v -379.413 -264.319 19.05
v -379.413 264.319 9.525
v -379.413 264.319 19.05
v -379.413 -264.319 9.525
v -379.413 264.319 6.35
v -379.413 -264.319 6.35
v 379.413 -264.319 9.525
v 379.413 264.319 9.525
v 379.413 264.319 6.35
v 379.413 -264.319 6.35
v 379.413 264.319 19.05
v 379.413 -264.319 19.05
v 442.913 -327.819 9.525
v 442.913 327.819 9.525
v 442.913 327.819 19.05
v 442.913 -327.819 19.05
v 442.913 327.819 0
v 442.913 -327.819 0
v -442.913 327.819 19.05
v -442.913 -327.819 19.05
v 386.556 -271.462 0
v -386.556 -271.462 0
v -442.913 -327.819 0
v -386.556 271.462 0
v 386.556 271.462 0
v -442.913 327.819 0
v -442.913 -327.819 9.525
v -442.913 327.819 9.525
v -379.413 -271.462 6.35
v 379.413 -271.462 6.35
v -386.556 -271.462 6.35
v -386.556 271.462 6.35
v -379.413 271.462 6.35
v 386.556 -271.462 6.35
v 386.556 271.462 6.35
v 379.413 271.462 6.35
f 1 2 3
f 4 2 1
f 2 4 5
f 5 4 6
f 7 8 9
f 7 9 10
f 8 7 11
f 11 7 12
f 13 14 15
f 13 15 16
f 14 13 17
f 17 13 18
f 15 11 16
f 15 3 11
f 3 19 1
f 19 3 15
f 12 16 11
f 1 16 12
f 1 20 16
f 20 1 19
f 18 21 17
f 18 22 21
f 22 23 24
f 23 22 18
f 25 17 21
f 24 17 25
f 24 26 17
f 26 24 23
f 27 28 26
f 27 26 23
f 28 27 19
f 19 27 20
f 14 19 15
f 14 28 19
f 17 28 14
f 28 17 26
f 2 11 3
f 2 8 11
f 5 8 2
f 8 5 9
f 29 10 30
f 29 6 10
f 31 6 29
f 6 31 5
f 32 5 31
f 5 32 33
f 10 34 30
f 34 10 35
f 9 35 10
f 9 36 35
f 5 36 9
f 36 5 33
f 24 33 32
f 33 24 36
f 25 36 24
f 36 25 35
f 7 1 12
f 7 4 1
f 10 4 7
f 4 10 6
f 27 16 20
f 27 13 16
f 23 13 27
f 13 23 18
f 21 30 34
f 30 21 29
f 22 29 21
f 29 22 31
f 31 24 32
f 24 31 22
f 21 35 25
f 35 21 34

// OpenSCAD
// Art frame — extended from the supplied half-lap FeatureScript 3083.
// The unchanged original is alongside this file as half-lap-art-frame.fs.
// Inputs are inches; geometry and STL exports are millimetres.
// XY is the frame face. Back is Z=0; front is Z=Thickness.

/* [Artwork] */
// Actual artwork width before the frame overlaps its edges.
Art_width = 30.375; // [1:200]
// Actual artwork height before the frame overlaps its edges.
Art_height = 21.3125; // [1:200]
// Overlap at EACH edge, not a gap. Opening = art size minus twice this value.
Reveal = 0.25; // [0.01:4]

/* [Frame and joinery] */
// Corner construction. All options preserve the opening and outside dimensions.
Joinery = "half_lap"; // [half_lap:Half-lap, miter:Plain miter, mitered_half_lap:Mitered half-lap, bridle:Corner bridle, mitered_bridle:Mitered bridle, splined_miter:Miter with exposed splines, loose_tenon_miter:Miter with loose tenons, dowelled_butt:Dowelled square corner, dovetail_key_miter:Miter with dovetail keys, blind_mortise_tenon:Blind mortise and tenon, through_mortise_tenon:Through mortise and tenon]
// Face width of all four rails and stiles; also the length of each half-lap.
Member_width = 2.5; // [0.25:12]
// Finished stock thickness. Automatic lap and tongue sizes follow this value.
Thickness = 0.75; // [0.125:4]
// Cut from the BACK face. Set to zero to omit the rabbet.
Rabbet_depth = 0.25; // [0:3]
// Additional fitting clearance at each artwork edge; enlarges only the back pocket.
Clearance = 0.03125; // [0:0.25]
// Depth of the rail's back lap, inches. Zero uses half the stock thickness.
Lap_depth = 0; // [0:4]
// Tongue or loose-tenon thickness, inches. Zero uses one third of the stock thickness.
Tenon_thickness = 0; // [0:4]
// Shift the tongue or loose tenon toward the front (+) or back (-), measured from centered.
Tenon_offset = 0; // [-2:2]

/* [Corner inserts] */
// Thickness of each exposed spline. Zero uses one sixth of stock thickness.
Spline_thickness = 0; // [0:2]
// Slot depth along the 45-degree miter, measured from the outside corner. Zero uses one third of member width.
Spline_depth = 0; // [0:8]
// Equally spaced spline slots through the stock thickness.
Spline_count = 1; // [1:1:3]
// Embedment into EACH miter face, normal to that face. Zero uses one quarter of member width.
Loose_tenon_depth = 0; // [0:8]
// Loose-tenon width along the miter face. Zero uses one third of member width.
Loose_tenon_width = 0; // [0:8]
// Dovetail-key slot depth along the miter from the outside corner. Zero chooses a depth that leaves a substantial tip.
Key_depth = 0; // [0:8]
// Widest key thickness, at the buried end. Zero uses half the stock thickness.
Key_thickness = 0; // [0:2]
// Dovetail cutter flank angle in DEGREES, on each side of the key.
Key_angle = 8; // [1:20]
// Dowel diameter. Zero chooses a diameter that fits the stock thickness and full-thickness face band.
Dowel_diameter = 0; // [0:2]
// Embedment into EACH member. Zero uses half the stile width, limited by the rail length.
Dowel_depth = 0; // [0:8]
// Number of dowels at each square corner.
Dowel_count = 2; // [1:1:3]
// Center-to-center spacing across the member width. Zero spaces the dowels in the band outside the rabbet.
Dowel_spacing = 0; // [0:8]

/* [Mortise and tenon] */
// Integral tenon width across the rail face. Zero uses half the member width.
Tenon_width = 0; // [0:8]
// Inset of the tenon's inner edge from the opening. Zero centers it in the band outside the rabbet.
Tenon_inset = 0; // [0:8]
// Blind tenon and mortise length. Zero uses half the stile width; through tenons always finish flush outside.
Mortise_depth = 0; // [0:8]

/* [Inspection] */
// Separation in percent: 0 assembles the frame, 100 matches the original exploded view, and 200 doubles it. Complete frame only; part sizes stay fixed.
Explosion_percent = 0; // [0:5:200]
// Select a member or one representative insert for inspection and a separate STL export.
Part = "all"; // [all:Complete frame, top:Top rail, bottom:Bottom rail, left:Left stile, right:Right stile, insert:One corner insert]

/* [Hidden] */
inch = 25.4;
eps = 0.01 / inch; // Same 0.01 mm boolean-tool overrun as the original.
opening_width = Art_width - 2 * Reveal;
opening_height = Art_height - 2 * Reveal;
rail_length = opening_width + 2 * Member_width;
stile_length = opening_height + 2 * Member_width;
lap_depth = Lap_depth == 0 ? Thickness / 2 : Lap_depth;
tenon_thickness = Tenon_thickness == 0 ? Thickness / 3 : Tenon_thickness;
tenon_back = (Thickness - tenon_thickness) / 2 + Tenon_offset;
tenon_front = tenon_back + tenon_thickness;
is_reinforced_miter = Joinery == "splined_miter" || Joinery == "loose_tenon_miter" || Joinery == "dovetail_key_miter";
is_mt = Joinery == "blind_mortise_tenon" || Joinery == "through_mortise_tenon";
is_square = is_mt || Joinery == "dowelled_butt";
has_inserts = is_reinforced_miter || Joinery == "dowelled_butt";
has_machining_sheet = is_reinforced_miter || is_square;
is_bridle = Joinery == "bridle" || Joinery == "mitered_bridle";
is_lap = Joinery == "half_lap" || Joinery == "mitered_half_lap";
has_miter = is_reinforced_miter || Joinery == "miter" || Joinery == "mitered_half_lap" || Joinery == "mitered_bridle";
joint_title = Joinery == "half_lap" ? "Half-lap" : Joinery == "miter" ? "Plain miter" :
    Joinery == "mitered_half_lap" ? "Mitered half-lap" : Joinery == "bridle" ? "Corner bridle" :
    Joinery == "mitered_bridle" ? "Mitered bridle" : Joinery == "splined_miter" ? "Exposed-spline miter" :
    Joinery == "loose_tenon_miter" ? "Loose-tenon miter" : Joinery == "dowelled_butt" ? "Dowelled square corner" :
    Joinery == "dovetail_key_miter" ? "Dovetail-key miter" : Joinery == "blind_mortise_tenon" ? "Blind mortise and tenon" : "Through mortise and tenon";
rabbet_width = Reveal + Clearance;
solid_band_start = Rabbet_depth > 0 ? rabbet_width : 0;
tenon_width = Tenon_width == 0 ? Member_width/2 : Tenon_width;
tenon_inset = Tenon_inset == 0 ? (solid_band_start+Member_width-tenon_width)/2 : Tenon_inset;
mt_depth = Joinery == "through_mortise_tenon" ? Member_width : Mortise_depth == 0 ? Member_width/2 : Mortise_depth;
rail_blank = is_square ? opening_width + (is_mt ? 2*mt_depth : 0) : rail_length;
spline_thickness = Spline_thickness == 0 ? Thickness/6 : Spline_thickness;
spline_depth = Spline_depth == 0 ? Member_width/3 : Spline_depth;
loose_depth = Loose_tenon_depth == 0 ? Member_width/4 : Loose_tenon_depth;
loose_width = Loose_tenon_width == 0 ? Member_width/3 : Loose_tenon_width;
loose_center = Member_width/sqrt(2);
key_thickness = Key_thickness == 0 ? Thickness/2 : Key_thickness;
key_depth = Key_depth == 0 ? min(Member_width/3,key_thickness/(3*tan(Key_angle))) : Key_depth;
key_tip = key_thickness - 2*key_depth*tan(Key_angle);
dowel_diameter = Dowel_diameter == 0 ? min(Thickness/3,(Member_width-solid_band_start)/(2*Dowel_count)) : Dowel_diameter;
dowel_depth = Dowel_depth == 0 ? min(Member_width/2,opening_width/4) : Dowel_depth;
dowel_spacing = Dowel_spacing == 0 ? (Member_width-solid_band_start)/(Dowel_count+1) : Dowel_spacing;
function dowel_v(j) = (solid_band_start+Member_width)/2 + (j-(Dowel_count-1)/2)*dowel_spacing;
insert_count = Joinery == "splined_miter" ? Spline_count : Joinery == "dowelled_butt" ? Dowel_count : 1;
insert_name = Joinery == "splined_miter" ? "Spline" : Joinery == "loose_tenon_miter" ? "Loose tenon" : Joinery == "dovetail_key_miter" ? "Dovetail key" : "Dowel blank (turn round)";
insert_thickness = Joinery == "splined_miter" ? spline_thickness : Joinery == "loose_tenon_miter" ? tenon_thickness : Joinery == "dovetail_key_miter" ? key_thickness : dowel_diameter;
insert_length = Joinery == "splined_miter" ? 2*spline_depth : Joinery == "loose_tenon_miter" ? 2*loose_depth : Joinery == "dovetail_key_miter" ? 2*key_depth : 2*dowel_depth;
insert_width = Joinery == "splined_miter" ? spline_depth : Joinery == "loose_tenon_miter" ? loose_width : Joinery == "dovetail_key_miter" ? key_depth : dowel_diameter;
// Stable individual identities allow the drawing pass to select one insert.
insert_colors = ["#8754ad", "#ae689d", "#7065af", "#508549", "#75853c", "#47856d",
                 "#a67538", "#a75a55", "#956d70", "#476c9c", "#5d7c92", "#687aaf"];
part_ids = ["top", "bottom", "left", "right"];
// Separate physical identities; paired hues distinguish rails from stiles.
part_colors = ["#b87924", "#b6483b", "#2c78b5", "#3998a5"];
offsets = [[0, 2 * Member_width, Thickness], [0, -2 * Member_width, Thickness],
           [-2 * Member_width, 0, 0], [2 * Member_width, 0, 0]];

assert(Art_width >= 1 && Art_width <= 200 && Art_height >= 1 && Art_height <= 200,
       "Artwork dimensions must be between 1 and 200 inches.");
assert(Reveal >= 0.01 && Reveal <= 4, "Overlap must be between 0.01 and 4 inches.");
assert(Member_width >= 0.25 && Member_width <= 12, "Member width must be between 0.25 and 12 inches.");
assert(Thickness >= 0.125 && Thickness <= 4, "Stock thickness must be between 0.125 and 4 inches.");
assert(Rabbet_depth >= 0 && Rabbet_depth <= 3, "Rabbet depth must be between 0 and 3 inches.");
assert(Clearance >= 0 && Clearance <= 0.25, "Clearance must be between 0 and 0.25 inches.");
assert(opening_width > 0 && opening_height > 0, "Overlap leaves no opening.");
assert(rabbet_width < Member_width, "Overlap plus clearance must be less than member width.");
assert(Rabbet_depth < Thickness, "Rabbet depth must be less than stock thickness.");
assert(Joinery == "half_lap" || Joinery == "miter" || Joinery == "mitered_half_lap" ||
       Joinery == "bridle" || Joinery == "mitered_bridle" || has_machining_sheet, "Choose a supported corner joint.");
assert(!is_lap || (Lap_depth >= 0 && lap_depth > eps && lap_depth < Thickness - eps),
       "Lap depth must leave material in both frame members; use 0 for half thickness.");
assert(!(is_bridle || is_mt || Joinery == "loose_tenon_miter") || (Tenon_thickness >= 0 && tenon_thickness > eps && tenon_back > eps && tenon_front < Thickness - eps),
       "The tongue must leave a positive cheek on both faces. Reduce its thickness or offset.");
assert(Joinery != "splined_miter" || (Spline_count >= 1 && Spline_count <= 3 && floor(Spline_count) == Spline_count &&
       Spline_depth >= 0 && Spline_thickness >= 0 && spline_thickness > eps && spline_thickness < Thickness/(Spline_count+1) &&
       spline_depth > eps && sqrt(2)*spline_depth < Member_width-solid_band_start),
       "Splines must leave wood between slots and stay in the band outside the rabbet. Reduce thickness, count or depth.");
assert(Joinery != "loose_tenon_miter" || (Loose_tenon_depth >= 0 && Loose_tenon_width >= 0 && loose_depth > eps && loose_width > eps &&
       loose_center-loose_width/2 > loose_depth+eps && loose_center+loose_width/2+loose_depth < sqrt(2)*Member_width-eps &&
       (tenon_back >= Rabbet_depth || loose_center+loose_width/2 < sqrt(2)*(Member_width-rabbet_width)-eps)),
       "Loose mortises must remain concealed and clear the rear pocket. Reduce width or depth, or move the tongue forward.");
assert(Joinery != "dovetail_key_miter" || (Key_depth >= 0 && Key_thickness >= 0 && Key_angle >= 1 && Key_angle <= 20 &&
       key_depth > eps && key_thickness < Thickness-eps && key_tip > eps && sqrt(2)*key_depth < Member_width-solid_band_start),
       "Dovetail keys must retain a positive tip, cheeks and wood outside the rabbet. Reduce depth or angle, or increase key thickness.");
assert(Joinery != "dowelled_butt" || (Dowel_count >= 1 && Dowel_count <= 3 && floor(Dowel_count) == Dowel_count &&
       Dowel_diameter >= 0 && Dowel_depth >= 0 && Dowel_spacing >= 0 && dowel_diameter > eps && dowel_diameter < Thickness-eps &&
       dowel_depth > eps && dowel_depth < Member_width-eps && 2*dowel_depth < opening_width-eps &&
       (Dowel_count == 1 || dowel_spacing > dowel_diameter+eps) &&
       dowel_v(0)-dowel_diameter/2 > solid_band_start+eps && dowel_v(Dowel_count-1)+dowel_diameter/2 < Member_width-eps),
       "Dowel holes must be separate, blind and inside the full-thickness band. Reduce diameter, depth or spacing.");
assert(!is_mt || (Tenon_width >= 0 && Tenon_inset >= 0 && (Joinery == "through_mortise_tenon" || Mortise_depth >= 0) && tenon_width > eps &&
       tenon_inset > solid_band_start+eps && tenon_inset+tenon_width < Member_width-eps && mt_depth > eps &&
       (Joinery == "through_mortise_tenon" || mt_depth < Member_width-eps)),
       "Mortise and tenon must leave face shoulders outside the rabbet and a positive blind end wall. Reduce width, inset or depth.");
assert(Part != "insert" || has_inserts, "This joint has no separate inserts. Select the complete frame or a member.");
assert(is_num(Explosion_percent) && Explosion_percent >= 0 && Explosion_percent <= 200,
       "Explosion percent must be between 0 and 200.");
assert(Part == "all" || Part == "top" || Part == "bottom" || Part == "left" || Part == "right" || Part == "insert",
       "Choose all members or one of the four named parts.");

// Derived, read-only dimensions, corresponding to the FeatureScript variables
// and computed blank lengths. They always describe the complete frame.
echo(str("All dimensions below are inches; exported geometry is millimetres."));
echo(str("Visible opening: ", opening_width, " x ", opening_height));
echo(str("Outside frame: ", rail_length, " x ", stile_length));
echo(str("Rear pocket: ", Art_width + 2 * Clearance, " x ", Art_height + 2 * Clearance,
         Rabbet_depth == 0 ? " (rabbet omitted)" : ""));
echo(str("Rail blanks (2): ", rail_blank, " long x ", Member_width, " wide x ", Thickness, " thick"));
echo(str("Stile blanks (2): ", stile_length, " long x ", Member_width, " wide x ", Thickness, " thick"));
echo(str("Joinery: ", joint_title));
if (is_lap) echo(str("Rail back lap: ", Member_width, " long x ", lap_depth, " deep"));
if (is_bridle) echo(str("Bridle tongue: ", tenon_thickness, " thick; back/front cheeks ",
                       tenon_back, " / ", Thickness - tenon_front));
echo(str("Rear rabbet: ", rabbet_width, " wide x ", Rabbet_depth, " deep"));

module box(lo, hi) {
    // Convert before boolean operations: the browser engine's tolerances are
    // suited to millimetres, including the smallest allowed artwork/overlap.
    translate(lo * inch) cube((hi - lo) * inch);
}

module half_lap_member(i) {
    is_rail = i < 2;
    lo = is_rail
        ? [-rail_length / 2, i == 0 ? opening_height / 2 : -stile_length / 2, 0]
        : [i == 2 ? -rail_length / 2 : opening_width / 2, -stile_length / 2, 0];
    hi = is_rail
        ? [rail_length / 2, lo[1] + Member_width, Thickness]
        : [lo[0] + Member_width, stile_length / 2, Thickness];
    difference() {
        box(lo, hi);
        if (is_rail) {
            // Rails keep the FRONT half at both ends.
            box([-rail_length / 2 - eps, lo[1] - eps, -eps],
                [-opening_width / 2, hi[1] + eps, lap_depth]);
            box([opening_width / 2, lo[1] - eps, -eps],
                [rail_length / 2 + eps, hi[1] + eps, lap_depth]);
        } else {
            // Stiles keep the BACK half at both ends.
            box([lo[0] - eps, -stile_length / 2 - eps, lap_depth],
                [hi[0] + eps, -opening_height / 2, Thickness + eps]);
            box([lo[0] - eps, opening_height / 2, lap_depth],
                [hi[0] + eps, stile_length / 2 + eps, Thickness + eps]);
        }
        if (Rabbet_depth > 0)
            box([-Art_width / 2 - Clearance, -Art_height / 2 - Clearance, -eps],
                [Art_width / 2 + Clearance, Art_height / 2 + Clearance, Rabbet_depth]);
    }
}

// Layer styles: full-width ends, square shoulders, or 45-degree miters.
// Corner regions are complementary, so the assembled frame has no gaps or
// overlapping wood. The mitered variants have a mitered FRONT face only.
function joint_layers(rail) =
    (Joinery == "miter" || is_reinforced_miter) ? [[0, Thickness, "miter"]] :
    Joinery == "mitered_half_lap" ? [[0, lap_depth, rail ? "short" : "full"], [lap_depth, Thickness, "miter"]] :
    [[0, tenon_back, rail ? "short" : "full"],
     [tenon_back, tenon_front, rail ? "full" : "short"],
     [tenon_front, Thickness, Joinery == "mitered_bridle" ? "miter" : rail ? "short" : "full"]];
function xy(i, u, v) = i < 2 ? [u, (i == 0 ? 1 : -1) * (opening_height / 2 + v)]
                             : [(i == 2 ? -1 : 1) * (opening_width / 2 + v), u];
module shaped_member(i) {
    rail = i < 2;
    length = rail ? rail_length : stile_length;
    difference() {
        // Subtract all machining from one blank so preview meshes also have
        // a single exterior skin, without coincident internal layer faces.
        linear_extrude(height=Thickness*inch)
            polygon([for (p = [[-length/2,0],[length/2,0],[length/2,Member_width],[-length/2,Member_width]])
                     xy(i,p[0],p[1])*inch]);
        for (layer = joint_layers(rail)) if (layer[2] != "full") for (sign = [-1,1]) {
            points = layer[2] == "short"
                ? [[-length/2-eps,-eps],[-length/2+Member_width,-eps],
                   [-length/2+Member_width,Member_width+eps],[-length/2-eps,Member_width+eps]]
                : [[-length/2-eps,-eps],[-length/2+Member_width+eps,-eps],[-length/2-eps,Member_width+eps]];
            z0 = layer[0] == 0 ? -eps : layer[0];
            z1 = layer[1] == Thickness ? Thickness+eps : layer[1];
            translate([0,0,z0*inch]) linear_extrude(height=(z1-z0)*inch)
                polygon([for (p = points) xy(i,sign*p[0],p[1])*inch]);
        }
        if (Rabbet_depth > 0)
            box([-Art_width/2-Clearance,-Art_height/2-Clearance,-eps],
                [Art_width/2+Clearance,Art_height/2+Clearance,Rabbet_depth]);
    }
}
// Corner coordinates: a and b run inward from the two outside edges.
// s crosses the miter; t follows the miter from its outside point inward.
function corner_sign(k) = [[-1,1],[1,1],[-1,-1],[1,-1]][k];
function corner_point(k,s,t,z) = let(sign=corner_sign(k), a=(t+s)/sqrt(2), b=(t-s)/sqrt(2))
    [sign[0]*(rail_length/2-a),sign[1]*(stile_length/2-b),z];
module corner_transform(k) {
    sign=corner_sign(k); c=1/sqrt(2);
    multmatrix([[-sign[0]*c,-sign[0]*c,0,sign[0]*rail_length/2*inch],
                [sign[1]*c,-sign[1]*c,0,sign[1]*stile_length/2*inch],
                [0,0,1,0],[0,0,0,1]]) children();
}
module miter_insert(k,j) corner_transform(k) {
    if (Joinery == "loose_tenon_miter")
        box([-loose_depth,loose_center-loose_width/2,tenon_back],
            [loose_depth,loose_center+loose_width/2,tenon_front]);
    else if (Joinery == "splined_miter") {
        z=Thickness*(j+1)/(Spline_count+1)-spline_thickness/2;
        translate([0,0,z*inch]) linear_extrude(height=spline_thickness*inch)
            polygon([[0,0],[-spline_depth,spline_depth],[spline_depth,spline_depth]]*inch);
    } else {
        // The buried edge is thicker than the outside tip: a real dovetail
        // cross-section, routed across the corner and trimmed flush outside.
        points=[for (side=[-1,1]) each [[0,0,Thickness/2+side*key_tip/2],
            [-key_depth,key_depth,Thickness/2+side*key_thickness/2],
            [key_depth,key_depth,Thickness/2+side*key_thickness/2]]];
        polyhedron(points=points*inch,faces=[[2,1,0],[4,5,3],[1,4,3,0],[2,5,4,1],[0,3,5,2]],convexity=4);
    }
}
module dowel(k,j) {
    sign=corner_sign(k);
    translate([sign[0]*opening_width/2,sign[1]*(opening_height/2+dowel_v(j)),Thickness/2]*inch)
        rotate([0,90,0]) cylinder(h=2*dowel_depth*inch,d=dowel_diameter*inch,center=true,$fn=32);
}
module mt_tool(k,overrun=false) {
    sign=corner_sign(k);
    x0=sign[0]*opening_width/2; x1=sign[0]*(opening_width/2+mt_depth);
    y0=sign[1]*(opening_height/2+tenon_inset); y1=sign[1]*(opening_height/2+tenon_inset+tenon_width);
    box([min(x0,x1)-(overrun && sign[0]>0 ? eps : 0),min(y0,y1),tenon_back],
        [max(x0,x1)+(overrun && sign[0]<0 ? eps : 0),max(y0,y1),tenon_front]);
}
module square_member(i) {
    rail=i<2; length=rail ? rail_blank : stile_length;
    difference() {
        linear_extrude(height=Thickness*inch)
            polygon([for(p=[[-length/2,0],[length/2,0],[length/2,Member_width],[-length/2,Member_width]]) xy(i,p[0],p[1])*inch]);
        if (is_mt && rail) for (sign=[-1,1]) {
            // Cut shoulders from one blank, retaining an integral rail tenon.
            for (cut=[[0,tenon_inset,-eps,Thickness+eps],
                      [tenon_inset+tenon_width,Member_width,-eps,Thickness+eps],
                      [0,Member_width,-eps,tenon_back],[0,Member_width,tenon_front,Thickness+eps]]) {
                translate([0,0,cut[2]*inch]) linear_extrude(height=(cut[3]-cut[2])*inch)
                    polygon([for(p=[[-length/2-eps,cut[0] == 0 ? -eps : cut[0]],[-opening_width/2,cut[0] == 0 ? -eps : cut[0]],
                                    [-opening_width/2,cut[1] == Member_width ? Member_width+eps : cut[1]],[-length/2-eps,cut[1] == Member_width ? Member_width+eps : cut[1]]])
                        xy(i,sign*p[0],p[1])*inch]);
            }
        }
        if (is_mt && !rail) for(k=[0:3]) mt_tool(k,true);
        if (Joinery == "dowelled_butt") for(k=[0:3]) for(j=[0:Dowel_count-1]) dowel(k,j);
        if (Rabbet_depth > 0) box([-Art_width/2-Clearance,-Art_height/2-Clearance,-eps],
                                 [Art_width/2+Clearance,Art_height/2+Clearance,Rabbet_depth]);
    }
}
module member(i) {
    if (Joinery == "half_lap") half_lap_member(i);
    else if (is_square) square_member(i);
    else difference() {
        shaped_member(i);
        if (is_reinforced_miter) for(k=[0:3]) for(j=[0:insert_count-1]) miter_insert(k,j);
    }
}
module frame(assembled = false) union() {
    separation = !assembled && Part == "all" ? Explosion_percent/100 : 0;
    for (i=[0:3]) if (assembled || Part == "all" || Part == part_ids[i])
        color(part_colors[i])
            translate(offsets[i]*separation*inch) member(i);
    if (has_inserts) for(k=[0:3]) for(j=[0:insert_count-1])
        if (assembled || Part == "all" || (Part == "insert" && k == 0 && j == 0))
            color(insert_colors[k*3+j])
                translate([corner_sign(k)[0]*Member_width/2,corner_sign(k)[1]*Member_width/2,2*Thickness]*separation*inch)
                    if (Joinery == "dowelled_butt") dowel(k,j); else miter_insert(k,j);
}

// Finished rectangular blanks BEFORE machining. Insert grain runs along the
// listed length (across the miter); dowel blanks are turned to the given diameter.
echo("CUTLIST_STOCK_V1", [14,10,0.0625,0.0625]);
echo("CUTLIST_V1", concat([for(i=[0:3])
    [part_ids[i],["Top rail","Bottom rail","Left stile","Right stile"][i],"Solid wood",1,
     Thickness,Member_width,i<2 ? rail_blank : stile_length,
     rail_blank == stile_length ? "Frame member" : i<2 ? "Rail" : "Stile"]],
    !has_inserts ? [] : [for(k=[0:3]) for(j=[0:insert_count-1])
        [str("insert-",k,"-",j),insert_name,"Solid wood",1,insert_thickness,insert_width,insert_length,insert_name]]));

// Witness coordinates encode whole mm + millionths to retain inch fractions
// through OpenSCAD echo's six-significant-digit formatting.
function dp(p) = [for (n = p * inch) [floor(n), round((n - floor(n)) * 1000000)]];
function dim(label, a, b, direction, side, tier = 1) = [label, dp(a), dp(b), direction, side, tier];
function guide(a, b) = [dp(a), dp(b)];
function section(depth, crop, breaks = [], notes = [], contacts = []) =
    [dp([depth,0,0])[0], [for(n=crop) dp([n,0,0])[0]], breaks, notes, contacts];
// Local member coordinates: u along its length, v from its inner edge outward.
function pp(rail, u, v, z) = rail ? [u, opening_height / 2 + v, z] : [-opening_width / 2 - v, u, z];
function pd(rail, label, a, b, direction, side, tier = 1) =
    dim(label, pp(rail, a[0], a[1], a[2]), pp(rail, b[0], b[1], b[2]), direction, side, tier);
function pg(rail, a, b) = guide(pp(rail, a[0], a[1], a[2]), pp(rail, b[0], b[1], b[2]));

function lap_part_sheet(rail) = let(
    length = rail ? rail_length : stile_length,
    pocket_run = (rail ? Art_width : Art_height) + 2 * Clearance,
    inner_offset = (rail ? opening_height : opening_width) / 2,
    extension = min(Member_width, (length - 2 * Member_width) / 2),
    section_v = (rabbet_width + Member_width) / 2,
    lap_floor = rail ? 0 : lap_depth,
    lap_roof = rail ? lap_depth : Thickness
) [rail ? "rail" : "stile", rail ? "Rails" : "Stiles", 2, [
    rail ? "Top and bottom rails match. Cut both laps from the BACK; retain the FRONT layer."
         : "Left and right stiles match. Cut both laps from the FRONT; retain the BACK layer.",
    "Both end laps run across the full member width. Grain runs along the blank length.",
    Rabbet_depth > 0 ? "Center the rear pocket cut along the length; dashed limits include removed lap material."
                     : "Rabbet omitted: no rear-pocket machining is required.",
    "All dimensions are finished sizes. Rough-stock allowances are in the cut list."
], rail ? [184/255,121/255,36/255] : [44/255,120/255,181/255], [
    ["face", rail ? "Back face / dashed: pocket cut limits" : "Front face / dashed: rear pocket cut limits",
     rail ? [[1,0,0],[0,-1,0],[0,0,-1]] : [[0,1,0],[-1,0,0],[0,0,1]], [
        pd(rail, "Blank length", [-length/2,Member_width,0], [length/2,Member_width,0], "horizontal", 1),
        pd(rail, "Blank width", [-length/2,0,0], [-length/2,Member_width,0], "vertical", -1),
        pd(rail, "Each lap", [-length/2,0,0], [-length/2+Member_width,0,0], "horizontal", -1),
        if (Rabbet_depth > 0)
            pd(rail, "Pocket end inset", [-length/2,0,0], [-pocket_run/2,0,0], "horizontal", -1, 2),
        if (Rabbet_depth > 0)
            pd(rail, "Pocket cut run", [-pocket_run/2,0,0], [pocket_run/2,0,0], "horizontal", 1, 2)
     ], [], Rabbet_depth > 0 ? [
        pg(rail, [-pocket_run/2,0,0], [-pocket_run/2,rabbet_width,0]),
        pg(rail, [-pocket_run/2,rabbet_width,0], [pocket_run/2,rabbet_width,0]),
        pg(rail, [pocket_run/2,rabbet_width,0], [pocket_run/2,0,0])
     ] : []],
    ["lap", "End lap / section outside the rabbet",
     rail ? [[1,0,0],[0,0,1],[0,-1,0]] : [[0,1,0],[0,0,1],[1,0,0]], [
        pd(rail, "Lap length", [-length/2,section_v,lap_floor], [-length/2+Member_width,section_v,lap_floor], "horizontal", -1),
        pd(rail, "Lap depth", [-length/2,section_v,lap_floor], [-length/2,section_v,lap_roof], "vertical", -1),
        pd(rail, "Thickness", [-length/2+Member_width+extension,section_v,0], [-length/2+Member_width+extension,section_v,Thickness], "vertical", 1)
     ], section(-(inner_offset+section_v), [-length/2,0,-length/2+Member_width+extension,Thickness], ["right"]), [
        pg(rail, [-length/2,section_v,rail ? 0 : Thickness], [-length/2+Member_width,section_v,rail ? 0 : Thickness])
     ]],
    ["profile", Rabbet_depth > 0 ? "Mid-length section / rear rabbet" : "Mid-length section / rabbet omitted",
     rail ? [[0,1,0],[0,0,1],[1,0,0]] : [[-1,0,0],[0,0,1],[0,1,0]], [
        pd(rail, "Width", [0,0,Thickness], [0,Member_width,Thickness], "horizontal", -1),
        pd(rail, "Stock", [0,Member_width,0], [0,Member_width,Thickness], "vertical", 1),
        if (Rabbet_depth > 0) pd(rail, "Rabbet width", [0,0,Rabbet_depth], [0,rabbet_width,Rabbet_depth], "horizontal", 1),
        if (Rabbet_depth > 0) pd(rail, "Rabbet depth", [0,0,0], [0,0,Rabbet_depth], "vertical", -1)
     ], section(0, [inner_offset,0,inner_offset+Member_width,Thickness])]
]];

// The default sheet stays compatible with the original half-lap design.
// Other joints use the same blank/rabbet witnesses, with different end machining.
function frame_part_sheet(rail) = let(
    base = lap_part_sheet(rail), length = rail ? rail_length : stile_length,
    inner = (rail ? opening_height : opening_width)/2,
    sv = (rabbet_width+Member_width)/2,
    extension = min(Member_width,(length-2*Member_width)/2),
    u0 = -length/2, u1 = u0+Member_width, end = u1+extension
) Joinery == "half_lap" ? base : [base[0],base[1],base[2],[
    str(joint_title, ": both ends match. Grain runs along the blank length."),
    Joinery == "miter" ? "Cut both ends at 45 degrees through the full thickness; blank length is long point to long point." :
    Joinery == "mitered_half_lap" ? "FRONT layer: 45-degree miters. BACK layer: square rail shoulders and full stile ends." :
    Joinery == "bridle" ? "Rail tongues enter open-ended stile slots. Tongues and slots run the full member width." :
    "FRONT cheeks: 45-degree miters. Rail tongues enter stile slots; BACK cheeks have square shoulders.",
    Rabbet_depth > 0 ? "Center the rear pocket cut along the length; dashed limits include removed end material."
                    : "Rabbet omitted: no rear-pocket machining is required.",
    "Zero clearance at mating faces is nominal. Fit the joint on test stock. Dimensions are finished sizes."
],base[4],[
    ["face", has_miter ? "Front face / 45-degree miters / dashed: machining references"
                        : "Front face / dashed: slot shoulders and rear pocket",
     rail ? [[1,0,0],[0,1,0],[0,0,1]] : [[0,1,0],[-1,0,0],[0,0,1]], [
        pd(rail,"Blank length",[u0,Member_width,Thickness],[-u0,Member_width,Thickness],"horizontal",1),
        pd(rail,"Blank width",[-u0,0,Thickness],[-u0,Member_width,Thickness],"vertical",1),
        pd(rail,has_miter ? "45 deg miter run" : "End zone",[u0,0,Thickness],[u1,0,Thickness],"horizontal",-1),
        if (Rabbet_depth > 0) each [base[5][0][3][3],base[5][0][3][4]]
     ],[],concat(base[5][0][5],[
        pg(rail,[u1,0,Thickness],[u1,Member_width,Thickness]),
        pg(rail,[-u1,0,Thickness],[-u1,Member_width,Thickness])
     ])],
    ["joinery","End joinery / section outside the rabbet",
     rail ? [[1,0,0],[0,0,1],[0,-1,0]] : [[0,1,0],[0,0,1],[1,0,0]], [
        pd(rail,"End zone",[u0,sv,0],[u1,sv,0],"horizontal",-1),
        pd(rail,"Stock",[end,sv,0],[end,sv,Thickness],"vertical",1),
        if (is_lap) pd(rail,rail ? "Back lap" : "Front lap",[u0,sv,rail ? 0 : lap_depth],
                       [u0,sv,rail ? lap_depth : Thickness],"vertical",-1),
        if (is_bridle) each [
            pd(rail,rail ? "Tongue" : "Slot",[u0,sv,tenon_back],[u0,sv,tenon_front],"vertical",-1),
            pd(rail,"Back cheek",[u0,sv,0],[u0,sv,tenon_back],"vertical",-1,2),
            pd(rail,"Front cheek",[end,sv,tenon_front],[end,sv,Thickness],"vertical",1,2)
        ]
     ],section(-(inner+sv),[u0,0,end,Thickness],["right"]),[
        pg(rail,[u0,sv,0],[u1,sv,0]),pg(rail,[u0,sv,Thickness],[u1,sv,Thickness])
     ]],
    base[5][2]
]];

function cp(along_rail,u,z) = let(sv=(rabbet_width+Member_width)/2)
    along_rail ? [u,opening_height/2+sv,z] : [-opening_width/2-sv,u,z];
function cd(along_rail,label,u,a,b,side,tier=1) =
    dim(label,cp(along_rail,u,a),cp(along_rail,u,b),"vertical",side,tier);
function corner_section(along_rail) = let(
    sv=(rabbet_width+Member_width)/2,
    start=along_rail ? -rail_length/2 : opening_height/2,
    end=start+Member_width,
    extension=min(Member_width,(along_rail ? opening_width : opening_height)/2),
    lo=along_rail ? start : start-extension, hi=along_rail ? end+extension : end,
    diagonal=along_rail ? end-sv : start+sv,
    plane=along_rail ? -opening_height/2-sv : -opening_width/2-sv,
    contacts=Joinery == "miter" ? [guide(cp(along_rail,diagonal,0),cp(along_rail,diagonal,Thickness))] :
        is_lap ? concat([
            guide(cp(along_rail,has_miter ? diagonal : start,lap_depth),cp(along_rail,end,lap_depth))
        ],has_miter ? [guide(cp(along_rail,diagonal,lap_depth),cp(along_rail,diagonal,Thickness))] : []) :
        concat([
            guide(cp(along_rail,start,tenon_back),cp(along_rail,end,tenon_back)),
            guide(cp(along_rail,start,tenon_front),cp(along_rail,has_miter ? diagonal : end,tenon_front))
        ],has_miter ? [guide(cp(along_rail,diagonal,tenon_front),cp(along_rail,diagonal,Thickness))] : [])
) [along_rail ? "joint-longitudinal" : "joint-transverse",
   along_rail ? "A-A / Across the rail" : "B-B / Along the stile",
   along_rail ? [[1,0,0],[0,0,1],[0,-1,0]] : [[0,1,0],[0,0,1],[1,0,0]], [
    dim(Joinery == "miter" ? "45 deg miter run" : "Joint length",cp(along_rail,start,0),cp(along_rail,end,0),"horizontal",-1),
    cd(along_rail,"Stock",hi,0,Thickness,1),
    if (is_lap) cd(along_rail,along_rail ? "Rail back lap" : "Stile front lap",lo,
                   along_rail ? 0 : lap_depth,along_rail ? lap_depth : Thickness,-1),
    if (is_bridle) each [
        cd(along_rail,"Tongue / slot",lo,tenon_back,tenon_front,-1),
        cd(along_rail,"Back cheek",lo,0,tenon_back,-1,2),
        cd(along_rail,"Front cheek",hi,tenon_front,Thickness,1,2)
    ]
   ], section(plane,[lo,0,hi,Thickness],[along_rail ? "right" : "left"],[
       "Top-left corner, section outside the rear pocket.",
       str("Section offset from opening edge: ",sv," in."),
       has_miter ? "Front miters: 45 degrees in plan." : "All corner shoulders are square."
   ],contacts)];

// New-joint manufacturing sheets. A blank sheet and a separate enlarged
// machining sheet keep small mortises legible without crowding full-length views.
function blank_sheet(rail) = let(
    length=rail ? rail_blank : stile_length,
    pocket_run=min(length,(rail ? Art_width : Art_height)+2*Clearance),
    base=lap_part_sheet(rail)
) [rail ? "rail" : "stile",rail ? "Rails" : "Stiles",2,[
    str(joint_title, ". Both ends match; see the enlarged machining sheet for joint cuts."),
    has_miter ? "Cut both ends at 45 degrees. Length is long point to long point." :
        rail && is_mt ? "Blank length includes two integral tenons. Square shoulders are spaced by the opening width." :
        rail ? "Square rail ends butt against the inside edges of the stiles." : "Stiles run the full outside height. Both ends are square.",
    Rabbet_depth > 0 ? "BACK rabbet: dashed lines mark centered cutting limits, including removed shoulder material." : "Rear rabbet omitted.",
    "Grain follows the blank length. Finished sizes shown; rough-stock allowances are in the cut list."
],base[4],[
    ["face","Front face / dashed: rear pocket cut limits",
     rail ? [[1,0,0],[0,1,0],[0,0,1]] : [[0,1,0],[-1,0,0],[0,0,1]],[
        pd(rail,"Blank length",[-length/2,Member_width,Thickness],[length/2,Member_width,Thickness],"horizontal",1),
        pd(rail,"Blank width",[length/2,0,Thickness],[length/2,Member_width,Thickness],"vertical",1),
        if (has_miter) pd(rail,"45 deg miter run",[-length/2,0,Thickness],[-length/2+Member_width,0,Thickness],"horizontal",-1),
        if (rail && is_mt) pd(rail,"Between shoulders",[-opening_width/2,0,Thickness],[opening_width/2,0,Thickness],"horizontal",-1),
        if (Rabbet_depth > 0 && length > pocket_run+eps)
            pd(rail,"Pocket end inset",[-length/2,0,0],[-pocket_run/2,0,0],"horizontal",-1,2),
        if (Rabbet_depth > 0) pd(rail,"Pocket cut run",[-pocket_run/2,0,0],[pocket_run/2,0,0],"horizontal",1,2)
     ],[],Rabbet_depth > 0 ? [
        pg(rail,[-pocket_run/2,0,0],[-pocket_run/2,rabbet_width,0]),
        pg(rail,[-pocket_run/2,rabbet_width,0],[pocket_run/2,rabbet_width,0]),
        pg(rail,[pocket_run/2,rabbet_width,0],[pocket_run/2,0,0])
     ] : []], base[5][2]
]];

ce_s=[1/sqrt(2),1/sqrt(2),0];
ce_t=[1/sqrt(2),-1/sqrt(2),0];
ce_z=[0,0,1];
function kp(s,t,z)=corner_point(0,s,t,z);
function kd(label,a,b,direction,side,tier=1)=dim(label,kp(a[0],a[1],a[2]),kp(b[0],b[1],b[2]),direction,side,tier);
function kg(a,b)=guide(kp(a[0],a[1],a[2]),kp(b[0],b[1],b[2]));
function kcrop(a,b,axes)=[kp(a[0],a[1],a[2])*axes[0],kp(a[0],a[1],a[2])*axes[1],
                         kp(b[0],b[1],b[2])*axes[0],kp(b[0],b[1],b[2])*axes[1]];
slot_t0=Joinery == "loose_tenon_miter" ? loose_center-loose_width/2 : 0;
slot_t1=Joinery == "loose_tenon_miter" ? loose_center+loose_width/2 : insert_width;
slot_z=Joinery == "splined_miter" ? Thickness/(Spline_count+1) : Joinery == "loose_tenon_miter" ? (tenon_back+tenon_front)/2 : Thickness/2;
slot_z0=slot_z-insert_thickness/2;
slot_z1=slot_z+insert_thickness/2;
slot_tc=(slot_t0+slot_t1)/2;

function miter_machining_sheet() = let(
    end_axes=[ce_t,ce_z,-ce_s], depth_axes=[ce_s,ce_z,ce_t],
    reach=Joinery == "loose_tenon_miter" ? loose_depth : slot_tc,
    max_s=slot_tc
) ["miter-machining","Miter end machining",4,[
    "Same machining at every 45-degree end. Top-left rail shown; mirror the opposite ends and mating stiles.",
    Joinery == "loose_tenon_miter" ? "Rectangular mortises normal to the miter face. Square the corners; use matching shop-made loose tenons." :
    Joinery == "splined_miter" ? str(Spline_count," slot(s) per corner, equally spaced through thickness. Slots run across the glued corner.") :
        str("Dovetail groove across the corner; ",Key_angle," degree flanks. Buried thickness is greater than the outside tip."),
    "End-face distances follow the 45-degree miter from its outside long point; they are not distances along an outside edge.",
    "Nominal zero-clearance fit. Test the cutter setup and fit inserts to the actual mortises."
],[184/255,121/255,36/255],[
    ["end","Miter end face / view from outside",end_axes,[
        kd("Miter face",[0,0,Thickness],[0,sqrt(2)*Member_width,Thickness],"horizontal",1),
        kd("Stock",[0,sqrt(2)*Member_width,0],[0,sqrt(2)*Member_width,Thickness],"vertical",1),
        kd(Joinery == "loose_tenon_miter" ? "Mortise width" : "Slot depth",[0,slot_t0,0],[0,slot_t1,0],"horizontal",-1),
        if (slot_t0 > eps) kd("Long point to mortise",[0,0,0],[0,slot_t0,0],"horizontal",-1,2),
        kd(Joinery == "dovetail_key_miter" ? "Buried thickness" : "Slot thickness",[0,slot_t1,slot_z0],[0,slot_t1,slot_z1],"vertical",-1),
        kd(Joinery == "dovetail_key_miter" ? "Back cheek at depth" : "Back to first slot",[0,slot_t1,0],[0,slot_t1,slot_z0],"vertical",-1,2),
        if (Joinery == "splined_miter" && Spline_count > 1)
            kd("Slot center spacing",[0,slot_t1,slot_z],[0,slot_t1,slot_z+Thickness/(Spline_count+1)],"vertical",1,2),
        if (Joinery == "dovetail_key_miter") kd("Tip thickness",[0,0,Thickness/2-key_tip/2],[0,0,Thickness/2+key_tip/2],"vertical",1,2)
     ],section(kp(0,0,0)*(-ce_s),kcrop([0,0,0],[0,sqrt(2)*Member_width,Thickness],end_axes))],
    ["embedment","Section normal to the miter / rail side",depth_axes,[
        kd("Embedment",[0,slot_tc,slot_z],[reach,slot_tc,slot_z],"horizontal",-1),
        kd("Stock",[max_s,slot_tc,0],[max_s,slot_tc,Thickness],"vertical",1)
     ],section(kp(0,slot_tc,0)*ce_t,kcrop([0,slot_tc,0],[max_s,slot_tc,Thickness],depth_axes),[],[
        str("Section distance from outside long point along miter: ",slot_tc," in."),
        Joinery == "loose_tenon_miter" ? "Depth is measured normal to each miter face." : "Slot passes through both outside edges; depth is set on the end-face view."
     ])]
]];

function reinforced_corner(plan) = let(
    axes=plan ? [ce_s,ce_t,ce_z] : [ce_s,ce_z,ce_t],
    span=Member_width/sqrt(2),
    reach=Joinery == "loose_tenon_miter" ? loose_depth : slot_tc,
    z0=Joinery == "dovetail_key_miter" ? Thickness/2-key_tip/2-slot_tc*tan(Key_angle) : slot_z0,
    z1=Joinery == "dovetail_key_miter" ? Thickness/2+key_tip/2+slot_tc*tan(Key_angle) : slot_z1
) [plan ? "joint-longitudinal" : "joint-transverse",
    plan ? "A-A / Plan through the first insert" : "B-B / Normal to the miter through insert center", axes,
    plan ? [
        kd("Insert blank length",[-insert_length/2,slot_t1,slot_z],[insert_length/2,slot_t1,slot_z],"horizontal",1),
        kd(Joinery == "loose_tenon_miter" ? "Mortise width" : "Slot depth",[0,slot_t0,slot_z],[0,slot_t1,slot_z],"vertical",-1),
        if (slot_t0 > eps) kd("Long point to mortise",[0,0,slot_z],[0,slot_t0,slot_z],"vertical",-1,2)
    ] : [
        kd("Each-side embedment",[0,slot_tc,slot_z],[reach,slot_tc,slot_z],"horizontal",-1),
        kd("Stock",[span,slot_tc,0],[span,slot_tc,Thickness],"vertical",1),
        kd("Insert at section",[0,slot_tc,z0],[0,slot_tc,z1],"vertical",-1),
        kd("Back to insert",[0,slot_tc,0],[0,slot_tc,z0],"vertical",-1,2)
    ], section(plan ? slot_z : kp(0,slot_tc,0)*ce_t,
        plan ? kcrop([-span,0,0],[span,Member_width*sqrt(2),0],axes)
             : kcrop([-span,slot_tc,0],[span,slot_tc,Thickness],axes),[],[
        "Top-left corner. All four corners match; inserts have separate colors.",
        plan ? str("Section above back: ",slot_z," in.") : str("Section along miter from outside point: ",slot_tc," in."),
        Joinery == "dovetail_key_miter" ? str("Dovetail cutter flank: ",Key_angle," degrees each side.") : "Miter angle: 45 degrees."
    ])];

// Square joints: local face coordinate v follows the rail width outward.
function sp(x,v,z)=[x,opening_height/2+v,z];
function sd(label,a,b,direction,side,tier=1)=dim(label,sp(a[0],a[1],a[2]),sp(b[0],b[1],b[2]),direction,side,tier);
function sg(a,b)=guide(sp(a[0],a[1],a[2]),sp(b[0],b[1],b[2]));
square_z0=is_mt ? tenon_back : (Thickness-dowel_diameter)/2;
square_z1=is_mt ? tenon_front : (Thickness+dowel_diameter)/2;
square_v=is_mt ? tenon_inset+tenon_width/2 : dowel_v(0);
square_depth=is_mt ? mt_depth : dowel_depth;

function square_machining_sheet(rail) = let(
    shoulder=-opening_width/2, outside=-rail_length/2,
    depth_x=rail ? -rail_blank/2 : shoulder,
    cut_v0=is_mt ? tenon_inset : dowel_v(0),
    cut_v1=is_mt ? tenon_inset+tenon_width : dowel_v(Dowel_count-1),
    lo=rail ? -rail_blank/2 : outside,
    hi=rail ? shoulder+min(Member_width,opening_width/2) : shoulder,
    color=rail ? [184/255,121/255,36/255] : [44/255,120/255,181/255]
) [rail ? "rail-machining" : "stile-machining",rail ? "Rail end machining" : "Stile corner machining",2,[
    "Machining detail for the same two members on the blank sheet; this is not an additional pair of parts.",
    is_mt ? (rail ? "Integral tenons at both ends. Four square shoulders surround each tenon." :
        Joinery == "through_mortise_tenon" ? "Rectangular mortises pass through the stile width. Tenon ends finish flush outside." :
        "Rectangular blind mortises open on the inside edge. Leave the dimensioned outside end wall.") :
        str(Dowel_count," round, blind holes at each corner. Hole centers are on the stock mid-thickness plane."),
    rail ? "End face: measure face offsets outward from the frame opening edge." :
        "Inside edge: measure the end inset from the stile's outside end. Repeat at its other end.",
    "Nominal zero-clearance fit. Fit to test stock; refer to the blank sheet for the rear rabbet."
],color,[
    ["end",is_mt && rail ? "Tenon end / dashed: original rail outline" : rail ? "Rail end / drilling pattern" : "Inside edge / top corner opening",
     [[0,1,0],[0,0,1],rail ? [-1,0,0] : [1,0,0]],[
        sd("Member width",[depth_x,0,Thickness],[depth_x,Member_width,Thickness],"horizontal",1),
        sd("Stock",[depth_x,Member_width,0],[depth_x,Member_width,Thickness],"vertical",1),
        if (is_mt) sd(rail ? "Tenon width" : "Mortise width",[depth_x,cut_v0,0],[depth_x,cut_v1,0],"horizontal",-1),
        if (!is_mt && Dowel_count > 1) sd("Hole spacing",[depth_x,dowel_v(0),Thickness/2],[depth_x,dowel_v(1),Thickness/2],"horizontal",-1),
        sd(rail ? "Opening edge inset" : "End inset",[depth_x,rail ? 0 : cut_v1,0],[depth_x,rail ? cut_v0 : Member_width,0],"horizontal",-1,2),
        sd(is_mt ? "Tongue / mortise" : "Hole diameter",[depth_x,cut_v0,square_z0],[depth_x,cut_v0,square_z1],"vertical",-1),
        sd(is_mt ? "Back cheek" : "Back to centers",[depth_x,0,0],[depth_x,0,is_mt ? square_z0 : Thickness/2],"vertical",-1,2)
     ],section(rail ? -depth_x : depth_x,[opening_height/2,0,stile_length/2,Thickness]),[
        sg([depth_x,0,0],[depth_x,Member_width,0]),sg([depth_x,0,Thickness],[depth_x,Member_width,Thickness]),
        sg([depth_x,0,0],[depth_x,0,Thickness]),sg([depth_x,Member_width,0],[depth_x,Member_width,Thickness]),
        if (!is_mt) for(j=[0:Dowel_count-1]) sg([depth_x,dowel_v(j),0],[depth_x,dowel_v(j),Thickness])
     ]],
    ["depth",is_mt ? "Section through tenon / mortise center" : "Section through first dowel center",[[1,0,0],[0,0,1],[0,-1,0]],[
        sd(is_mt ? (rail ? "Tenon length" : "Mortise depth") : "Hole depth",
           [shoulder-(is_mt || !rail ? square_depth : 0),square_v,0],
           [shoulder+(is_mt || !rail ? 0 : square_depth),square_v,0],"horizontal",-1),
        if (!rail && (!is_mt || Joinery == "blind_mortise_tenon"))
            sd("Outside wall",[outside,square_v,0],[shoulder-square_depth,square_v,0],"horizontal",1),
        sd("Stock",[hi,square_v,0],[hi,square_v,Thickness],"vertical",1)
     ],section(-opening_height/2-square_v,[lo,0,hi,Thickness],rail ? ["right"] : [],[
        str("Section offset from opening edge: ",square_v," in.")
     ])]
]];

function square_corner(plan) = let(
    shoulder=-opening_width/2, outside=-rail_length/2,
    hi=shoulder+min(Member_width,opening_width/2),
    z=is_mt ? (tenon_back+tenon_front)/2 : Thickness/2,
    lo_y=opening_height/2-min(Member_width,opening_height/2)
) [plan ? "joint-transverse" : "joint-longitudinal",
    plan ? "B-B / Plan through tongue or dowel centers" : "A-A / Longitudinal through first joint feature",
    plan ? [[1,0,0],[0,1,0],[0,0,1]] : [[1,0,0],[0,0,1],[0,-1,0]],
    plan ? [
        sd("Stile width",[outside,Member_width,z],[shoulder,Member_width,z],"horizontal",1),
        if (is_mt) each [
            sd("Tenon width",[shoulder,tenon_inset,z],[shoulder,tenon_inset+tenon_width,z],"vertical",1),
            sd("End shoulder",[outside,tenon_inset+tenon_width,z],[outside,Member_width,z],"vertical",-1)
        ],
        if (!is_mt && Dowel_count > 1) sd("Dowel spacing",[shoulder,dowel_v(0),z],[shoulder,dowel_v(1),z],"vertical",1),
        if (!is_mt) sd("End to outer center",[outside,dowel_v(Dowel_count-1),z],[outside,Member_width,z],"vertical",-1)
    ] : [
        sd(is_mt ? "Tenon / mortise depth" : "Each-side embedment",[shoulder-square_depth,square_v,0],[shoulder,square_v,0],"horizontal",-1),
        sd("Stock",[hi,square_v,0],[hi,square_v,Thickness],"vertical",1),
        sd(is_mt ? "Tenon thickness" : "Dowel diameter",[shoulder,square_v,square_z0],[shoulder,square_v,square_z1],"vertical",-1),
        sd("Back to feature",[shoulder,square_v,0],[shoulder,square_v,square_z0],"vertical",-1,2)
    ], section(plan ? z : -opening_height/2-square_v,
        plan ? [outside,lo_y,hi,stile_length/2] : [outside,0,hi,Thickness],plan ? ["right","bottom"] : ["right"],[
        "Top-left corner. Repeat at all four corners.",
        plan ? str("Section above back: ",z," in.") : str("Section offset from opening edge: ",square_v," in."),
        is_mt ? "Rail shoulders seat on the stile inside edge." : str(Dowel_count," dowels per corner, centered through stock thickness.")
    ])];

function insert_sheet() = Joinery == "dowelled_butt" ? let(
    x=-opening_width/2, v=dowel_v(0), z=Thickness/2, r=dowel_diameter/2
) ["insert","Dowels",4*Dowel_count,[
    str(Dowel_count," identical dowels per corner. Grain runs along the dowel axis."),
    "Cut list lists square turning blanks: diameter x diameter x length. Turn round, or cut equivalent purchased round dowel stock.",
    "Nominal diameter equals the drilled hole. Fit to test holes before assembly."
],[135/255,84/255,173/255],[
    ["side","Side / dowel length",[[1,0,0],[0,0,1],[0,-1,0]],[
        sd("Length",[x-dowel_depth,v,z],[x+dowel_depth,v,z],"horizontal",-1),
        sd("Diameter",[x,v,z-r],[x,v,z+r],"vertical",1)
    ]],
    ["end","End / round section",[[0,1,0],[0,0,1],[1,0,0]],[
        sd("Diameter",[x,v-r,z],[x,v+r,z],"horizontal",-1)
    ]]
]] : ["insert",Joinery == "splined_miter" ? "Splines" : Joinery == "loose_tenon_miter" ? "Loose tenons" : "Dovetail keys",4*insert_count,[
    Joinery == "loose_tenon_miter" ? "Rectangular shop-made tenons. Grain follows length, crossing the miter seam." :
        "Triangular plan: two equal 45-degree sides, centered apex. Grain follows blank length across the seam.",
    Joinery == "splined_miter" ? str(Spline_count," spline(s) per corner. Cut matching rectangular blanks, then trim flush to both outside faces.") :
        Joinery == "dovetail_key_miter" ? str("Dovetail flanks: ",Key_angle," degrees each side. Thickness increases from outside tip to buried edge.") :
        "Length includes equal embedment in each member. Square mortise corners to suit these tenons.",
    "Dimensions are nominal finished blanks. Adjust the actual fit to your cutter and test joints."
],[135/255,84/255,173/255],[
    ["plan","Front / grain along blank length",[ce_s,ce_t,ce_z],[
        kd("Blank length",[-insert_length/2,slot_t1,slot_z],[insert_length/2,slot_t1,slot_z],"horizontal",1),
        kd("Blank width",[0,slot_t0,slot_z],[0,slot_t1,slot_z],"vertical",-1)
    ]],
    ["edge",Joinery == "dovetail_key_miter" ? "Edge / dovetail taper" : "Edge / thickness",[ce_t,ce_z,ce_s],[
        kd("Width",[0,slot_t0,slot_z0],[0,slot_t1,slot_z0],"horizontal",-1),
        kd(Joinery == "dovetail_key_miter" ? "Buried thickness" : "Thickness",[0,slot_t1,slot_z0],[0,slot_t1,slot_z1],"vertical",1),
        if (Joinery == "dovetail_key_miter") kd("Tip thickness",[0,0,Thickness/2-key_tip/2],[0,0,Thickness/2+key_tip/2],"vertical",-1)
    ]]
]];

if (!is_undef($misc_drawing) && $misc_drawing) {
    echo("PART_DRAWINGS_V1", !has_machining_sheet ? [frame_part_sheet(true),frame_part_sheet(false)] : concat(
        [blank_sheet(true),blank_sheet(false)],
        is_reinforced_miter ? [miter_machining_sheet()] : [square_machining_sheet(true),square_machining_sheet(false)],
        has_inserts ? [insert_sheet()] : []));
    echo("DRAWING_V1", ["inches", [
        ["front", str("Front / ", joint_title, " / dashed: artwork"), [[1,0,0],[0,1,0],[0,0,1]], [
            dim("Outside width", [-rail_length/2,stile_length/2,Thickness], [rail_length/2,stile_length/2,Thickness], "horizontal", 1),
            dim("Artwork width", [-Art_width/2,Art_height/2,Thickness], [Art_width/2,Art_height/2,Thickness], "horizontal", 1, 2),
            dim("Opening width", [-opening_width/2,-opening_height/2,Thickness], [opening_width/2,-opening_height/2,Thickness], "horizontal", -1),
            dim("Outside height", [-rail_length/2,-stile_length/2,Thickness], [-rail_length/2,stile_length/2,Thickness], "vertical", -1),
            dim("Artwork height", [-Art_width/2,-Art_height/2,Thickness], [-Art_width/2,Art_height/2,Thickness], "vertical", -1, 2),
            dim("Opening height", [opening_width/2,-opening_height/2,Thickness], [opening_width/2,opening_height/2,Thickness], "vertical", 1)
        ], [], [
            guide([-Art_width/2,-Art_height/2,Thickness], [Art_width/2,-Art_height/2,Thickness]),
            guide([Art_width/2,-Art_height/2,Thickness], [Art_width/2,Art_height/2,Thickness]),
            guide([Art_width/2,Art_height/2,Thickness], [-Art_width/2,Art_height/2,Thickness]),
            guide([-Art_width/2,Art_height/2,Thickness], [-Art_width/2,-Art_height/2,Thickness])
        ]],
        ["top", "Top edge", [[1,0,0],[0,0,-1],[0,1,0]], []],
        ["right", "Right edge", [[0,0,-1],[0,1,0],[1,0,0]], [
            dim("Stock", [rail_length/2,-stile_length/2,0], [rail_length/2,-stile_length/2,Thickness], "horizontal", -1)
        ]],
        is_reinforced_miter ? reinforced_corner(true) : is_square ? square_corner(false) : corner_section(true),
        is_reinforced_miter ? reinforced_corner(false) : is_square ? square_corner(true) : corner_section(false)
    ], [str(joint_title, (Joinery == "bridle" || Joinery == "dowelled_butt") ? " detail" : " corner detail"),
        has_machining_sheet ? "Enlarged sections through the top-left joint features. Hatches distinguish members and inserts." :
        "Enlarged sections through the top-left corner, outside the rear pocket. Hatches distinguish rail and stile.",
        is_reinforced_miter ? "Matching 45-degree faces meet around fitted inserts. All four corners use the same joint." :
        is_mt ? "Integral rail tenons fit the stile mortises; four shoulders seat against the stile inside edge." :
        Joinery == "dowelled_butt" ? "Square rail ends seat against the stile inside edges; fitted dowels bridge the joint." :
        Joinery == "miter" ? "Contact: matching 45-degree end faces meet through the full stock thickness." :
        is_bridle ? "Contact: rail tongue seats between the stile cheeks. All four corners use the same joint." :
        "Contact: the rail front layer bears on the stile back layer. All four corners use the same joint."]]);
    frame(true);
} else frame();
